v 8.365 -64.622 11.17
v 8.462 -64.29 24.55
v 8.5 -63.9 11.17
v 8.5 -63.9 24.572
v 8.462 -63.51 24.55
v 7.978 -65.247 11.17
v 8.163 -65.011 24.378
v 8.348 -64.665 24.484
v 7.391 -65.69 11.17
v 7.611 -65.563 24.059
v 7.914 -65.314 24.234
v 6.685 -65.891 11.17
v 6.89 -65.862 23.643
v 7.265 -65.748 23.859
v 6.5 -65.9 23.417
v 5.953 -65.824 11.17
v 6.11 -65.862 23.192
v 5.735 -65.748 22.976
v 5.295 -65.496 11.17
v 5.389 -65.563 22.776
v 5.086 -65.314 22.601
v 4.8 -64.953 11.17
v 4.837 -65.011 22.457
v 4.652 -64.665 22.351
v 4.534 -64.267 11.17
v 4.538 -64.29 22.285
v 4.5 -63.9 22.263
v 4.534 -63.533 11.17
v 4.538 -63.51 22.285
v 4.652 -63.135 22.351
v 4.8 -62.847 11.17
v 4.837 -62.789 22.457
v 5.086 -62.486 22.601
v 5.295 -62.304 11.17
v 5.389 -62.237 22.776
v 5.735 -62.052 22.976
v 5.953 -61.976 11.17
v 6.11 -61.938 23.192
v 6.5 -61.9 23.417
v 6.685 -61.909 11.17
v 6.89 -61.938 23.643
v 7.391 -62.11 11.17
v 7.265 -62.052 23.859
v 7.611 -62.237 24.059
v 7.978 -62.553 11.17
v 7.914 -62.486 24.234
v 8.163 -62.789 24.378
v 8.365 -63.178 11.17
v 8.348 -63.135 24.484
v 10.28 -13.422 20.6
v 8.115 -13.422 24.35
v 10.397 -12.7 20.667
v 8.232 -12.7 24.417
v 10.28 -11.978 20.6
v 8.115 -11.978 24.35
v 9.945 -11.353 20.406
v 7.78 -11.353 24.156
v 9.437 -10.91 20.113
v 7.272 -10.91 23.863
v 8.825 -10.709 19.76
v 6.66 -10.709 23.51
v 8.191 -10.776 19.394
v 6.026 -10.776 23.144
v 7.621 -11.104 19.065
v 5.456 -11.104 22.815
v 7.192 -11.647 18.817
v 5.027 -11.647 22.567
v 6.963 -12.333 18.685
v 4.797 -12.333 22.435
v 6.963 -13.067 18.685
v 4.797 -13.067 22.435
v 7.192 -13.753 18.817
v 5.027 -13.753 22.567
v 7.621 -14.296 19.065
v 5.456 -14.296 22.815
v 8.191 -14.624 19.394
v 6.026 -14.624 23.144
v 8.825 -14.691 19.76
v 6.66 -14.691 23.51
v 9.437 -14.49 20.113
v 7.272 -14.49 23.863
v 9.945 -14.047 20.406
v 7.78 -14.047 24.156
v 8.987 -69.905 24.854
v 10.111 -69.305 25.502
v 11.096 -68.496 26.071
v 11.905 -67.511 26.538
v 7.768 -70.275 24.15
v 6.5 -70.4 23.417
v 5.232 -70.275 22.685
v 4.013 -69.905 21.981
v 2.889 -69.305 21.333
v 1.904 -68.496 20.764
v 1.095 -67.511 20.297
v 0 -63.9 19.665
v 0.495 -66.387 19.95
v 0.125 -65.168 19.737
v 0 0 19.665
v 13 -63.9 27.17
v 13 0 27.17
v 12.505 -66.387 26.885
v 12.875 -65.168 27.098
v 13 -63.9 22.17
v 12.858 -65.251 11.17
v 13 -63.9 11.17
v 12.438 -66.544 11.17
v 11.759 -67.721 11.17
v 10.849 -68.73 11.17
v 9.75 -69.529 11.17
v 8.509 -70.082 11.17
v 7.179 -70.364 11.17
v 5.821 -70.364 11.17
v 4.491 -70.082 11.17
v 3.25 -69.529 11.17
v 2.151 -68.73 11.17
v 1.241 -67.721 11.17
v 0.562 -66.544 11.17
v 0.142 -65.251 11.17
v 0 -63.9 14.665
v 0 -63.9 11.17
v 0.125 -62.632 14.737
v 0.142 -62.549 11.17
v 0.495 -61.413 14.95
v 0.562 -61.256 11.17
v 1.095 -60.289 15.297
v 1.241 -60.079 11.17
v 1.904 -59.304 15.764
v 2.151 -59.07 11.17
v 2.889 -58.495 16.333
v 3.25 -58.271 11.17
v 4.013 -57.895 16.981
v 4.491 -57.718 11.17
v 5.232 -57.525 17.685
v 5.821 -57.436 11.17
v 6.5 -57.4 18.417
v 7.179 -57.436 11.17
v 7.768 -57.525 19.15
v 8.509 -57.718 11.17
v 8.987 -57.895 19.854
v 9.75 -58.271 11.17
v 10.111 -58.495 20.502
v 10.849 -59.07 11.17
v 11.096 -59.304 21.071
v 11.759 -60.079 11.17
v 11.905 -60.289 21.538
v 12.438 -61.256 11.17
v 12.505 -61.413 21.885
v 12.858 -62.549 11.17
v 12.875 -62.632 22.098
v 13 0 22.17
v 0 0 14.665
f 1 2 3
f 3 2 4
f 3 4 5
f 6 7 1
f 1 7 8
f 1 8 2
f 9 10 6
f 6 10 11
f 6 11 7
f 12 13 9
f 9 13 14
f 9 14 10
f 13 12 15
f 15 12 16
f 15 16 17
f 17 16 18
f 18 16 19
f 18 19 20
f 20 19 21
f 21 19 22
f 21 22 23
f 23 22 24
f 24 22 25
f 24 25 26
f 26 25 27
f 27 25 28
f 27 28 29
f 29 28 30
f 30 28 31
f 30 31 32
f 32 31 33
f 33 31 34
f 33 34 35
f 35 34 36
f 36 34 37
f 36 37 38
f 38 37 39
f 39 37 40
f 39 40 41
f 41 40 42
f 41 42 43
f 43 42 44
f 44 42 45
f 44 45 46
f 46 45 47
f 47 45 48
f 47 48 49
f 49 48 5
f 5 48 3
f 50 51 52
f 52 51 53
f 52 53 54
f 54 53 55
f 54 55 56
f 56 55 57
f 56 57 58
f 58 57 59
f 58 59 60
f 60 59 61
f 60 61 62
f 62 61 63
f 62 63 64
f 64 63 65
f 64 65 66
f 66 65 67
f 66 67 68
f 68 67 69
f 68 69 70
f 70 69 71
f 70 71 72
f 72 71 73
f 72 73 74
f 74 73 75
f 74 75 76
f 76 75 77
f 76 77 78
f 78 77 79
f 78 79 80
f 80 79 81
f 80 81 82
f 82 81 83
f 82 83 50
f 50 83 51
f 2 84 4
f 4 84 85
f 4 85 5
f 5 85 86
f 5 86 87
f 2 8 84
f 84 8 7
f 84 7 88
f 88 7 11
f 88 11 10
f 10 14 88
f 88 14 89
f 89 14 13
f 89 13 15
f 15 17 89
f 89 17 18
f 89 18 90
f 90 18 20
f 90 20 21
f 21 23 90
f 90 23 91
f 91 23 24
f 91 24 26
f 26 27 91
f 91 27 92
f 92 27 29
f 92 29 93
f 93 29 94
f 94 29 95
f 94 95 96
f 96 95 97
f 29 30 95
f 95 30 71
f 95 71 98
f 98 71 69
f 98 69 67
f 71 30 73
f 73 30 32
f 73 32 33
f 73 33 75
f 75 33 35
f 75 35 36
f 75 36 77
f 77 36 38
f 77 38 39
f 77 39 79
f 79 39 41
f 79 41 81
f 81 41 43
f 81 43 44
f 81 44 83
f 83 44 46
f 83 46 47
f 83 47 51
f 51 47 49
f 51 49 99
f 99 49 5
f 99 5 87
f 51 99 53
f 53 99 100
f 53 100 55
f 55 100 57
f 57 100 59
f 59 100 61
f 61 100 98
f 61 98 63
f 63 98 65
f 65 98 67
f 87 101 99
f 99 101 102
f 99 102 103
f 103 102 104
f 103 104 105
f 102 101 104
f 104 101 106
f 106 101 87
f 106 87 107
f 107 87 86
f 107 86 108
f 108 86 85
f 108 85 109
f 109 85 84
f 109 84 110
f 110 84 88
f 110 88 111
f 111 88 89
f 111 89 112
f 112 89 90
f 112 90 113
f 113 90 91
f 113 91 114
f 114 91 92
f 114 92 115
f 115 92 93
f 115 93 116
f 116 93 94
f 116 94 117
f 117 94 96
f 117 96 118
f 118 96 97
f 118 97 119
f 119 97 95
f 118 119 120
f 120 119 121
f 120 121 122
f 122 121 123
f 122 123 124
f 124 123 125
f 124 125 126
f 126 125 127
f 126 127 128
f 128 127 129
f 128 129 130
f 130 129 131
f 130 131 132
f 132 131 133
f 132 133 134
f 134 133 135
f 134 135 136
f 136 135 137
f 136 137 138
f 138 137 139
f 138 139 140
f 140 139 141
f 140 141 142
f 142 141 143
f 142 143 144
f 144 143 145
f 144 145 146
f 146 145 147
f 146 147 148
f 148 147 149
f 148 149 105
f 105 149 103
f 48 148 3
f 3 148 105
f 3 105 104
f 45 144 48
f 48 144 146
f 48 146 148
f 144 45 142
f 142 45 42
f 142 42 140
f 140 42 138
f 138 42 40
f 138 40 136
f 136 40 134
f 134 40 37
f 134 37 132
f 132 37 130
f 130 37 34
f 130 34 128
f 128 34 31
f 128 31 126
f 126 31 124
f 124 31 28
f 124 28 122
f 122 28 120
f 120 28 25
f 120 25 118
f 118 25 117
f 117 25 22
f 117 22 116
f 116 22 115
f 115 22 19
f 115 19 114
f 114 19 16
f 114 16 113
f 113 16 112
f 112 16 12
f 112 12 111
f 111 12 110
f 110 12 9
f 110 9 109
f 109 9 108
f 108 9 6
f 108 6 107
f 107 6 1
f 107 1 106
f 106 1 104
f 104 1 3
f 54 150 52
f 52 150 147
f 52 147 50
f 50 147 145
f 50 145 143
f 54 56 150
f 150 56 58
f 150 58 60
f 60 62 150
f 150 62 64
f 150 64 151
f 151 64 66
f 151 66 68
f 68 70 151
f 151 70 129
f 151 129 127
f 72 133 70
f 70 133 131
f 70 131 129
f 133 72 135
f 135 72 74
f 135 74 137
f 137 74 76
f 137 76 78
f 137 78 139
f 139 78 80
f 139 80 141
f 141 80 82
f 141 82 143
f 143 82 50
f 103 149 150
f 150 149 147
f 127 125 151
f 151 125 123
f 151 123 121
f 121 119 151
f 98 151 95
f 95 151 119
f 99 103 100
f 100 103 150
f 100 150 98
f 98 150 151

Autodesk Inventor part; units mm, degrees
ref_plane "YZ Plane" through (0, 0, 0) normal (1, 0, 0) x (0, 1, 0)
ref_plane "XZ Plane" through (0, 0, 0) normal (0, 1, 0) x (-1, 0, 0)
ref_plane "XY Plane" through (0, 0, 0) normal (0, 0, 1) x (1, 0, 0)
sketch "Sketch1" plane through (0, 0, 0) normal (0, 1, 0) x (-1, 0, 0)
  line L0 (0, 14.6647) -> (-13, 22.1703)
  line L1 (0, 14.6647) -> (15.0111, 14.6647) construction
  line L2 (-13, 22.1703) -> (-13, 27.1703)
  line L3 (0, 19.6647) -> (0, 14.6647)
  line L4 (0, 0) -> (-28.4468, 0) construction
  line L5 (-13, -7.1591) -> (0, -14.6647)
  line L6 (0, -14.6647) -> (0, -19.6647)
  line L7 (-13, 27.1703) -> (0, 27.1703)
  line L8 (0, 27.1703) -> (0, 19.6647)
  line L9 (0, -19.6647) -> (-13, -19.6647)
  line L10 (-13, -19.6647) -> (-13, -7.1591)
  point P0 (0, -12.7)
  dimension "d1" = 150
  dimension "d2" = 5
  dimension "d5" = 25.4
  dimension "d6" = 0
  dimension "d7" = 0
  dimension "d8" = 14.6647
  dimension "d9" = 13
  dimension "d10" = 13
  dimension "d11" = 5
extrude "Extrusion1" add sketch "Sketch1" against normal blind 70.4
fillet "Fillet1" radius 6.5 4 edges at (0, -70.4, 20.9175) (13, -70.4, 24.6703) (13, -70.4, -13.4119) (0, -70.4, -17.1647)
sketch "Sketch2" plane through (0, 0, 27.1703) normal (0, 0, 1) x (1, 0, 0)
  arc A0 (0, -63.9) -> (13, -63.9) centre (6.5, -63.9) ccw projected
  line L0 (0, -63.9) -> (0, 0) projected
  line L1 (0, 0) -> (13, 0) projected
  line L2 (13, 0) -> (13, -63.9) projected
  circle A1 centre (6.5, -63.9) radius 6.5
extrude "Extrusion2" add sketch "Sketch2" against normal blind 16 contours A1 A0
sketch "Sketch3" plane through (13, 0, -19.6647) normal (0, 0, -1) x (-1, 0, 0)
  arc A0 (0, -63.9) -> (13, -63.9) centre (6.5, -63.9) ccw projected
  line L0 (0, -63.9) -> (0, 0) projected
  line L1 (0, 0) -> (13, 0) projected
  line L2 (13, 0) -> (13, -63.9) projected
  circle A1 centre (6.5, -63.9) radius 6.5
extrude "Extrusion3" add sketch "Sketch3" against normal blind 16 contours A1 A0
sketch "Sketch4" plane through (0, 0, 0) normal (0, 1, 0) x (1, 0, 0)
  line L0 (0, -14.6647) -> (13, -22.1703) projected
  line L1 (13, -22.1703) -> (13, -27.1703) projected
  line L2 (13, -27.1703) -> (0, -27.1703) projected
  line L3 (0, -27.1703) -> (0, -14.6647) projected
  line L4 (13, 7.1591) -> (0, 14.6647) projected
  line L5 (0, 14.6647) -> (0, 19.6647) projected
  line L6 (0, 19.6647) -> (13, 19.6647) projected
  line L7 (13, 19.6647) -> (13, 7.1591) projected
  line L8 (13, -27.1703) -> (0, -19.6647)
  line L9 (13, -27.1703) -> (28.0111, -27.1703) construction
  line L10 (0, 19.6647) -> (13, 12.1591)
  point P0 (0, 0)
  dimension "d19" = 150
extrude "Extrusion4" cut sketch "Sketch4" against normal through all contours L8 L2 L3 | L10 L6 L7
sketch "Sketch5" plane through (13, -63.9, 27.1703) normal (-0.5, 0, 0.8660254) x (0.8660254, 0, 0.5)
  ellipse E0 centre (-7.5056, 0) end of major axis (-15.0111, 0) minor radius 6.5 (-15.0111, 0) -> (0, 0) ccw projected
  line L0 (-15.0111, 0) -> (-15.0111, 63.9) projected
  line L1 (-15.0111, 63.9) -> (0, 63.9) projected
  line L2 (0, 63.9) -> (0, 0) projected
  circle A0 centre (-7.5056, 51.2) radius 2
  point P0 (-24.8435, 63.9)
  dimension "d22" = 4
  dimension "d23" = 12.7
extrude "Extrusion5" cut sketch "Sketch5" against normal up to next contours A0
sketch "Sketch6" plane through (0, -63.9, -19.6647) normal (0.5, 0, -0.8660254) x (-0.8660254, 0, -0.5)
  ellipse E0 centre (-7.5056, 0) end of major axis (-15.0111, 0) minor radius 6.5 (-15.0111, 0) -> (0, 0) ccw projected
  line L0 (-15.0111, 0) -> (-15.0111, 63.9) projected
  line L1 (-15.0111, 63.9) -> (0, 63.9) projected
  line L2 (0, 63.9) -> (0, 0) projected
  circle A0 centre (-7.5056, 51.2) radius 2
  point P0 (-9.8323, 63.9)
  dimension "d26" = 4
  dimension "d27" = 12.7
extrude "Extrusion6" cut sketch "Sketch6" against normal up to next contours A0
sketch "Sketch7" plane through (6.5, -63.9, -3.6647) normal (0, 0, 1) x (1, 0, 0)
  circle A0 centre (0, 0) radius 6.5 projected
  circle A1 centre (0, 0) radius 2
  point P0 (-6.5, 63.9)
  dimension "d30" = 4
extrude "Extrusion7" cut sketch "Sketch7" along normal through all both and the other way through all contours A1
sketch "Sketch9" plane through (0, 0, 0) normal (0, 1, 0) x (1, 0, 0)
  line L0 (-2.3389, 1.3365) -> (18.6443, 1.3365)
  line L1 (18.6443, 1.3365) -> (18.6443, 23.2553)
  line L2 (18.6443, 23.2553) -> (-2.3389, 23.2553)
  line L3 (-2.3389, 23.2553) -> (-2.3389, 1.3365)
  point P0 (0, 0)
extrude "Extrusion8" cut sketch "Sketch9" against normal through all
properties part number "terminal_mount"
